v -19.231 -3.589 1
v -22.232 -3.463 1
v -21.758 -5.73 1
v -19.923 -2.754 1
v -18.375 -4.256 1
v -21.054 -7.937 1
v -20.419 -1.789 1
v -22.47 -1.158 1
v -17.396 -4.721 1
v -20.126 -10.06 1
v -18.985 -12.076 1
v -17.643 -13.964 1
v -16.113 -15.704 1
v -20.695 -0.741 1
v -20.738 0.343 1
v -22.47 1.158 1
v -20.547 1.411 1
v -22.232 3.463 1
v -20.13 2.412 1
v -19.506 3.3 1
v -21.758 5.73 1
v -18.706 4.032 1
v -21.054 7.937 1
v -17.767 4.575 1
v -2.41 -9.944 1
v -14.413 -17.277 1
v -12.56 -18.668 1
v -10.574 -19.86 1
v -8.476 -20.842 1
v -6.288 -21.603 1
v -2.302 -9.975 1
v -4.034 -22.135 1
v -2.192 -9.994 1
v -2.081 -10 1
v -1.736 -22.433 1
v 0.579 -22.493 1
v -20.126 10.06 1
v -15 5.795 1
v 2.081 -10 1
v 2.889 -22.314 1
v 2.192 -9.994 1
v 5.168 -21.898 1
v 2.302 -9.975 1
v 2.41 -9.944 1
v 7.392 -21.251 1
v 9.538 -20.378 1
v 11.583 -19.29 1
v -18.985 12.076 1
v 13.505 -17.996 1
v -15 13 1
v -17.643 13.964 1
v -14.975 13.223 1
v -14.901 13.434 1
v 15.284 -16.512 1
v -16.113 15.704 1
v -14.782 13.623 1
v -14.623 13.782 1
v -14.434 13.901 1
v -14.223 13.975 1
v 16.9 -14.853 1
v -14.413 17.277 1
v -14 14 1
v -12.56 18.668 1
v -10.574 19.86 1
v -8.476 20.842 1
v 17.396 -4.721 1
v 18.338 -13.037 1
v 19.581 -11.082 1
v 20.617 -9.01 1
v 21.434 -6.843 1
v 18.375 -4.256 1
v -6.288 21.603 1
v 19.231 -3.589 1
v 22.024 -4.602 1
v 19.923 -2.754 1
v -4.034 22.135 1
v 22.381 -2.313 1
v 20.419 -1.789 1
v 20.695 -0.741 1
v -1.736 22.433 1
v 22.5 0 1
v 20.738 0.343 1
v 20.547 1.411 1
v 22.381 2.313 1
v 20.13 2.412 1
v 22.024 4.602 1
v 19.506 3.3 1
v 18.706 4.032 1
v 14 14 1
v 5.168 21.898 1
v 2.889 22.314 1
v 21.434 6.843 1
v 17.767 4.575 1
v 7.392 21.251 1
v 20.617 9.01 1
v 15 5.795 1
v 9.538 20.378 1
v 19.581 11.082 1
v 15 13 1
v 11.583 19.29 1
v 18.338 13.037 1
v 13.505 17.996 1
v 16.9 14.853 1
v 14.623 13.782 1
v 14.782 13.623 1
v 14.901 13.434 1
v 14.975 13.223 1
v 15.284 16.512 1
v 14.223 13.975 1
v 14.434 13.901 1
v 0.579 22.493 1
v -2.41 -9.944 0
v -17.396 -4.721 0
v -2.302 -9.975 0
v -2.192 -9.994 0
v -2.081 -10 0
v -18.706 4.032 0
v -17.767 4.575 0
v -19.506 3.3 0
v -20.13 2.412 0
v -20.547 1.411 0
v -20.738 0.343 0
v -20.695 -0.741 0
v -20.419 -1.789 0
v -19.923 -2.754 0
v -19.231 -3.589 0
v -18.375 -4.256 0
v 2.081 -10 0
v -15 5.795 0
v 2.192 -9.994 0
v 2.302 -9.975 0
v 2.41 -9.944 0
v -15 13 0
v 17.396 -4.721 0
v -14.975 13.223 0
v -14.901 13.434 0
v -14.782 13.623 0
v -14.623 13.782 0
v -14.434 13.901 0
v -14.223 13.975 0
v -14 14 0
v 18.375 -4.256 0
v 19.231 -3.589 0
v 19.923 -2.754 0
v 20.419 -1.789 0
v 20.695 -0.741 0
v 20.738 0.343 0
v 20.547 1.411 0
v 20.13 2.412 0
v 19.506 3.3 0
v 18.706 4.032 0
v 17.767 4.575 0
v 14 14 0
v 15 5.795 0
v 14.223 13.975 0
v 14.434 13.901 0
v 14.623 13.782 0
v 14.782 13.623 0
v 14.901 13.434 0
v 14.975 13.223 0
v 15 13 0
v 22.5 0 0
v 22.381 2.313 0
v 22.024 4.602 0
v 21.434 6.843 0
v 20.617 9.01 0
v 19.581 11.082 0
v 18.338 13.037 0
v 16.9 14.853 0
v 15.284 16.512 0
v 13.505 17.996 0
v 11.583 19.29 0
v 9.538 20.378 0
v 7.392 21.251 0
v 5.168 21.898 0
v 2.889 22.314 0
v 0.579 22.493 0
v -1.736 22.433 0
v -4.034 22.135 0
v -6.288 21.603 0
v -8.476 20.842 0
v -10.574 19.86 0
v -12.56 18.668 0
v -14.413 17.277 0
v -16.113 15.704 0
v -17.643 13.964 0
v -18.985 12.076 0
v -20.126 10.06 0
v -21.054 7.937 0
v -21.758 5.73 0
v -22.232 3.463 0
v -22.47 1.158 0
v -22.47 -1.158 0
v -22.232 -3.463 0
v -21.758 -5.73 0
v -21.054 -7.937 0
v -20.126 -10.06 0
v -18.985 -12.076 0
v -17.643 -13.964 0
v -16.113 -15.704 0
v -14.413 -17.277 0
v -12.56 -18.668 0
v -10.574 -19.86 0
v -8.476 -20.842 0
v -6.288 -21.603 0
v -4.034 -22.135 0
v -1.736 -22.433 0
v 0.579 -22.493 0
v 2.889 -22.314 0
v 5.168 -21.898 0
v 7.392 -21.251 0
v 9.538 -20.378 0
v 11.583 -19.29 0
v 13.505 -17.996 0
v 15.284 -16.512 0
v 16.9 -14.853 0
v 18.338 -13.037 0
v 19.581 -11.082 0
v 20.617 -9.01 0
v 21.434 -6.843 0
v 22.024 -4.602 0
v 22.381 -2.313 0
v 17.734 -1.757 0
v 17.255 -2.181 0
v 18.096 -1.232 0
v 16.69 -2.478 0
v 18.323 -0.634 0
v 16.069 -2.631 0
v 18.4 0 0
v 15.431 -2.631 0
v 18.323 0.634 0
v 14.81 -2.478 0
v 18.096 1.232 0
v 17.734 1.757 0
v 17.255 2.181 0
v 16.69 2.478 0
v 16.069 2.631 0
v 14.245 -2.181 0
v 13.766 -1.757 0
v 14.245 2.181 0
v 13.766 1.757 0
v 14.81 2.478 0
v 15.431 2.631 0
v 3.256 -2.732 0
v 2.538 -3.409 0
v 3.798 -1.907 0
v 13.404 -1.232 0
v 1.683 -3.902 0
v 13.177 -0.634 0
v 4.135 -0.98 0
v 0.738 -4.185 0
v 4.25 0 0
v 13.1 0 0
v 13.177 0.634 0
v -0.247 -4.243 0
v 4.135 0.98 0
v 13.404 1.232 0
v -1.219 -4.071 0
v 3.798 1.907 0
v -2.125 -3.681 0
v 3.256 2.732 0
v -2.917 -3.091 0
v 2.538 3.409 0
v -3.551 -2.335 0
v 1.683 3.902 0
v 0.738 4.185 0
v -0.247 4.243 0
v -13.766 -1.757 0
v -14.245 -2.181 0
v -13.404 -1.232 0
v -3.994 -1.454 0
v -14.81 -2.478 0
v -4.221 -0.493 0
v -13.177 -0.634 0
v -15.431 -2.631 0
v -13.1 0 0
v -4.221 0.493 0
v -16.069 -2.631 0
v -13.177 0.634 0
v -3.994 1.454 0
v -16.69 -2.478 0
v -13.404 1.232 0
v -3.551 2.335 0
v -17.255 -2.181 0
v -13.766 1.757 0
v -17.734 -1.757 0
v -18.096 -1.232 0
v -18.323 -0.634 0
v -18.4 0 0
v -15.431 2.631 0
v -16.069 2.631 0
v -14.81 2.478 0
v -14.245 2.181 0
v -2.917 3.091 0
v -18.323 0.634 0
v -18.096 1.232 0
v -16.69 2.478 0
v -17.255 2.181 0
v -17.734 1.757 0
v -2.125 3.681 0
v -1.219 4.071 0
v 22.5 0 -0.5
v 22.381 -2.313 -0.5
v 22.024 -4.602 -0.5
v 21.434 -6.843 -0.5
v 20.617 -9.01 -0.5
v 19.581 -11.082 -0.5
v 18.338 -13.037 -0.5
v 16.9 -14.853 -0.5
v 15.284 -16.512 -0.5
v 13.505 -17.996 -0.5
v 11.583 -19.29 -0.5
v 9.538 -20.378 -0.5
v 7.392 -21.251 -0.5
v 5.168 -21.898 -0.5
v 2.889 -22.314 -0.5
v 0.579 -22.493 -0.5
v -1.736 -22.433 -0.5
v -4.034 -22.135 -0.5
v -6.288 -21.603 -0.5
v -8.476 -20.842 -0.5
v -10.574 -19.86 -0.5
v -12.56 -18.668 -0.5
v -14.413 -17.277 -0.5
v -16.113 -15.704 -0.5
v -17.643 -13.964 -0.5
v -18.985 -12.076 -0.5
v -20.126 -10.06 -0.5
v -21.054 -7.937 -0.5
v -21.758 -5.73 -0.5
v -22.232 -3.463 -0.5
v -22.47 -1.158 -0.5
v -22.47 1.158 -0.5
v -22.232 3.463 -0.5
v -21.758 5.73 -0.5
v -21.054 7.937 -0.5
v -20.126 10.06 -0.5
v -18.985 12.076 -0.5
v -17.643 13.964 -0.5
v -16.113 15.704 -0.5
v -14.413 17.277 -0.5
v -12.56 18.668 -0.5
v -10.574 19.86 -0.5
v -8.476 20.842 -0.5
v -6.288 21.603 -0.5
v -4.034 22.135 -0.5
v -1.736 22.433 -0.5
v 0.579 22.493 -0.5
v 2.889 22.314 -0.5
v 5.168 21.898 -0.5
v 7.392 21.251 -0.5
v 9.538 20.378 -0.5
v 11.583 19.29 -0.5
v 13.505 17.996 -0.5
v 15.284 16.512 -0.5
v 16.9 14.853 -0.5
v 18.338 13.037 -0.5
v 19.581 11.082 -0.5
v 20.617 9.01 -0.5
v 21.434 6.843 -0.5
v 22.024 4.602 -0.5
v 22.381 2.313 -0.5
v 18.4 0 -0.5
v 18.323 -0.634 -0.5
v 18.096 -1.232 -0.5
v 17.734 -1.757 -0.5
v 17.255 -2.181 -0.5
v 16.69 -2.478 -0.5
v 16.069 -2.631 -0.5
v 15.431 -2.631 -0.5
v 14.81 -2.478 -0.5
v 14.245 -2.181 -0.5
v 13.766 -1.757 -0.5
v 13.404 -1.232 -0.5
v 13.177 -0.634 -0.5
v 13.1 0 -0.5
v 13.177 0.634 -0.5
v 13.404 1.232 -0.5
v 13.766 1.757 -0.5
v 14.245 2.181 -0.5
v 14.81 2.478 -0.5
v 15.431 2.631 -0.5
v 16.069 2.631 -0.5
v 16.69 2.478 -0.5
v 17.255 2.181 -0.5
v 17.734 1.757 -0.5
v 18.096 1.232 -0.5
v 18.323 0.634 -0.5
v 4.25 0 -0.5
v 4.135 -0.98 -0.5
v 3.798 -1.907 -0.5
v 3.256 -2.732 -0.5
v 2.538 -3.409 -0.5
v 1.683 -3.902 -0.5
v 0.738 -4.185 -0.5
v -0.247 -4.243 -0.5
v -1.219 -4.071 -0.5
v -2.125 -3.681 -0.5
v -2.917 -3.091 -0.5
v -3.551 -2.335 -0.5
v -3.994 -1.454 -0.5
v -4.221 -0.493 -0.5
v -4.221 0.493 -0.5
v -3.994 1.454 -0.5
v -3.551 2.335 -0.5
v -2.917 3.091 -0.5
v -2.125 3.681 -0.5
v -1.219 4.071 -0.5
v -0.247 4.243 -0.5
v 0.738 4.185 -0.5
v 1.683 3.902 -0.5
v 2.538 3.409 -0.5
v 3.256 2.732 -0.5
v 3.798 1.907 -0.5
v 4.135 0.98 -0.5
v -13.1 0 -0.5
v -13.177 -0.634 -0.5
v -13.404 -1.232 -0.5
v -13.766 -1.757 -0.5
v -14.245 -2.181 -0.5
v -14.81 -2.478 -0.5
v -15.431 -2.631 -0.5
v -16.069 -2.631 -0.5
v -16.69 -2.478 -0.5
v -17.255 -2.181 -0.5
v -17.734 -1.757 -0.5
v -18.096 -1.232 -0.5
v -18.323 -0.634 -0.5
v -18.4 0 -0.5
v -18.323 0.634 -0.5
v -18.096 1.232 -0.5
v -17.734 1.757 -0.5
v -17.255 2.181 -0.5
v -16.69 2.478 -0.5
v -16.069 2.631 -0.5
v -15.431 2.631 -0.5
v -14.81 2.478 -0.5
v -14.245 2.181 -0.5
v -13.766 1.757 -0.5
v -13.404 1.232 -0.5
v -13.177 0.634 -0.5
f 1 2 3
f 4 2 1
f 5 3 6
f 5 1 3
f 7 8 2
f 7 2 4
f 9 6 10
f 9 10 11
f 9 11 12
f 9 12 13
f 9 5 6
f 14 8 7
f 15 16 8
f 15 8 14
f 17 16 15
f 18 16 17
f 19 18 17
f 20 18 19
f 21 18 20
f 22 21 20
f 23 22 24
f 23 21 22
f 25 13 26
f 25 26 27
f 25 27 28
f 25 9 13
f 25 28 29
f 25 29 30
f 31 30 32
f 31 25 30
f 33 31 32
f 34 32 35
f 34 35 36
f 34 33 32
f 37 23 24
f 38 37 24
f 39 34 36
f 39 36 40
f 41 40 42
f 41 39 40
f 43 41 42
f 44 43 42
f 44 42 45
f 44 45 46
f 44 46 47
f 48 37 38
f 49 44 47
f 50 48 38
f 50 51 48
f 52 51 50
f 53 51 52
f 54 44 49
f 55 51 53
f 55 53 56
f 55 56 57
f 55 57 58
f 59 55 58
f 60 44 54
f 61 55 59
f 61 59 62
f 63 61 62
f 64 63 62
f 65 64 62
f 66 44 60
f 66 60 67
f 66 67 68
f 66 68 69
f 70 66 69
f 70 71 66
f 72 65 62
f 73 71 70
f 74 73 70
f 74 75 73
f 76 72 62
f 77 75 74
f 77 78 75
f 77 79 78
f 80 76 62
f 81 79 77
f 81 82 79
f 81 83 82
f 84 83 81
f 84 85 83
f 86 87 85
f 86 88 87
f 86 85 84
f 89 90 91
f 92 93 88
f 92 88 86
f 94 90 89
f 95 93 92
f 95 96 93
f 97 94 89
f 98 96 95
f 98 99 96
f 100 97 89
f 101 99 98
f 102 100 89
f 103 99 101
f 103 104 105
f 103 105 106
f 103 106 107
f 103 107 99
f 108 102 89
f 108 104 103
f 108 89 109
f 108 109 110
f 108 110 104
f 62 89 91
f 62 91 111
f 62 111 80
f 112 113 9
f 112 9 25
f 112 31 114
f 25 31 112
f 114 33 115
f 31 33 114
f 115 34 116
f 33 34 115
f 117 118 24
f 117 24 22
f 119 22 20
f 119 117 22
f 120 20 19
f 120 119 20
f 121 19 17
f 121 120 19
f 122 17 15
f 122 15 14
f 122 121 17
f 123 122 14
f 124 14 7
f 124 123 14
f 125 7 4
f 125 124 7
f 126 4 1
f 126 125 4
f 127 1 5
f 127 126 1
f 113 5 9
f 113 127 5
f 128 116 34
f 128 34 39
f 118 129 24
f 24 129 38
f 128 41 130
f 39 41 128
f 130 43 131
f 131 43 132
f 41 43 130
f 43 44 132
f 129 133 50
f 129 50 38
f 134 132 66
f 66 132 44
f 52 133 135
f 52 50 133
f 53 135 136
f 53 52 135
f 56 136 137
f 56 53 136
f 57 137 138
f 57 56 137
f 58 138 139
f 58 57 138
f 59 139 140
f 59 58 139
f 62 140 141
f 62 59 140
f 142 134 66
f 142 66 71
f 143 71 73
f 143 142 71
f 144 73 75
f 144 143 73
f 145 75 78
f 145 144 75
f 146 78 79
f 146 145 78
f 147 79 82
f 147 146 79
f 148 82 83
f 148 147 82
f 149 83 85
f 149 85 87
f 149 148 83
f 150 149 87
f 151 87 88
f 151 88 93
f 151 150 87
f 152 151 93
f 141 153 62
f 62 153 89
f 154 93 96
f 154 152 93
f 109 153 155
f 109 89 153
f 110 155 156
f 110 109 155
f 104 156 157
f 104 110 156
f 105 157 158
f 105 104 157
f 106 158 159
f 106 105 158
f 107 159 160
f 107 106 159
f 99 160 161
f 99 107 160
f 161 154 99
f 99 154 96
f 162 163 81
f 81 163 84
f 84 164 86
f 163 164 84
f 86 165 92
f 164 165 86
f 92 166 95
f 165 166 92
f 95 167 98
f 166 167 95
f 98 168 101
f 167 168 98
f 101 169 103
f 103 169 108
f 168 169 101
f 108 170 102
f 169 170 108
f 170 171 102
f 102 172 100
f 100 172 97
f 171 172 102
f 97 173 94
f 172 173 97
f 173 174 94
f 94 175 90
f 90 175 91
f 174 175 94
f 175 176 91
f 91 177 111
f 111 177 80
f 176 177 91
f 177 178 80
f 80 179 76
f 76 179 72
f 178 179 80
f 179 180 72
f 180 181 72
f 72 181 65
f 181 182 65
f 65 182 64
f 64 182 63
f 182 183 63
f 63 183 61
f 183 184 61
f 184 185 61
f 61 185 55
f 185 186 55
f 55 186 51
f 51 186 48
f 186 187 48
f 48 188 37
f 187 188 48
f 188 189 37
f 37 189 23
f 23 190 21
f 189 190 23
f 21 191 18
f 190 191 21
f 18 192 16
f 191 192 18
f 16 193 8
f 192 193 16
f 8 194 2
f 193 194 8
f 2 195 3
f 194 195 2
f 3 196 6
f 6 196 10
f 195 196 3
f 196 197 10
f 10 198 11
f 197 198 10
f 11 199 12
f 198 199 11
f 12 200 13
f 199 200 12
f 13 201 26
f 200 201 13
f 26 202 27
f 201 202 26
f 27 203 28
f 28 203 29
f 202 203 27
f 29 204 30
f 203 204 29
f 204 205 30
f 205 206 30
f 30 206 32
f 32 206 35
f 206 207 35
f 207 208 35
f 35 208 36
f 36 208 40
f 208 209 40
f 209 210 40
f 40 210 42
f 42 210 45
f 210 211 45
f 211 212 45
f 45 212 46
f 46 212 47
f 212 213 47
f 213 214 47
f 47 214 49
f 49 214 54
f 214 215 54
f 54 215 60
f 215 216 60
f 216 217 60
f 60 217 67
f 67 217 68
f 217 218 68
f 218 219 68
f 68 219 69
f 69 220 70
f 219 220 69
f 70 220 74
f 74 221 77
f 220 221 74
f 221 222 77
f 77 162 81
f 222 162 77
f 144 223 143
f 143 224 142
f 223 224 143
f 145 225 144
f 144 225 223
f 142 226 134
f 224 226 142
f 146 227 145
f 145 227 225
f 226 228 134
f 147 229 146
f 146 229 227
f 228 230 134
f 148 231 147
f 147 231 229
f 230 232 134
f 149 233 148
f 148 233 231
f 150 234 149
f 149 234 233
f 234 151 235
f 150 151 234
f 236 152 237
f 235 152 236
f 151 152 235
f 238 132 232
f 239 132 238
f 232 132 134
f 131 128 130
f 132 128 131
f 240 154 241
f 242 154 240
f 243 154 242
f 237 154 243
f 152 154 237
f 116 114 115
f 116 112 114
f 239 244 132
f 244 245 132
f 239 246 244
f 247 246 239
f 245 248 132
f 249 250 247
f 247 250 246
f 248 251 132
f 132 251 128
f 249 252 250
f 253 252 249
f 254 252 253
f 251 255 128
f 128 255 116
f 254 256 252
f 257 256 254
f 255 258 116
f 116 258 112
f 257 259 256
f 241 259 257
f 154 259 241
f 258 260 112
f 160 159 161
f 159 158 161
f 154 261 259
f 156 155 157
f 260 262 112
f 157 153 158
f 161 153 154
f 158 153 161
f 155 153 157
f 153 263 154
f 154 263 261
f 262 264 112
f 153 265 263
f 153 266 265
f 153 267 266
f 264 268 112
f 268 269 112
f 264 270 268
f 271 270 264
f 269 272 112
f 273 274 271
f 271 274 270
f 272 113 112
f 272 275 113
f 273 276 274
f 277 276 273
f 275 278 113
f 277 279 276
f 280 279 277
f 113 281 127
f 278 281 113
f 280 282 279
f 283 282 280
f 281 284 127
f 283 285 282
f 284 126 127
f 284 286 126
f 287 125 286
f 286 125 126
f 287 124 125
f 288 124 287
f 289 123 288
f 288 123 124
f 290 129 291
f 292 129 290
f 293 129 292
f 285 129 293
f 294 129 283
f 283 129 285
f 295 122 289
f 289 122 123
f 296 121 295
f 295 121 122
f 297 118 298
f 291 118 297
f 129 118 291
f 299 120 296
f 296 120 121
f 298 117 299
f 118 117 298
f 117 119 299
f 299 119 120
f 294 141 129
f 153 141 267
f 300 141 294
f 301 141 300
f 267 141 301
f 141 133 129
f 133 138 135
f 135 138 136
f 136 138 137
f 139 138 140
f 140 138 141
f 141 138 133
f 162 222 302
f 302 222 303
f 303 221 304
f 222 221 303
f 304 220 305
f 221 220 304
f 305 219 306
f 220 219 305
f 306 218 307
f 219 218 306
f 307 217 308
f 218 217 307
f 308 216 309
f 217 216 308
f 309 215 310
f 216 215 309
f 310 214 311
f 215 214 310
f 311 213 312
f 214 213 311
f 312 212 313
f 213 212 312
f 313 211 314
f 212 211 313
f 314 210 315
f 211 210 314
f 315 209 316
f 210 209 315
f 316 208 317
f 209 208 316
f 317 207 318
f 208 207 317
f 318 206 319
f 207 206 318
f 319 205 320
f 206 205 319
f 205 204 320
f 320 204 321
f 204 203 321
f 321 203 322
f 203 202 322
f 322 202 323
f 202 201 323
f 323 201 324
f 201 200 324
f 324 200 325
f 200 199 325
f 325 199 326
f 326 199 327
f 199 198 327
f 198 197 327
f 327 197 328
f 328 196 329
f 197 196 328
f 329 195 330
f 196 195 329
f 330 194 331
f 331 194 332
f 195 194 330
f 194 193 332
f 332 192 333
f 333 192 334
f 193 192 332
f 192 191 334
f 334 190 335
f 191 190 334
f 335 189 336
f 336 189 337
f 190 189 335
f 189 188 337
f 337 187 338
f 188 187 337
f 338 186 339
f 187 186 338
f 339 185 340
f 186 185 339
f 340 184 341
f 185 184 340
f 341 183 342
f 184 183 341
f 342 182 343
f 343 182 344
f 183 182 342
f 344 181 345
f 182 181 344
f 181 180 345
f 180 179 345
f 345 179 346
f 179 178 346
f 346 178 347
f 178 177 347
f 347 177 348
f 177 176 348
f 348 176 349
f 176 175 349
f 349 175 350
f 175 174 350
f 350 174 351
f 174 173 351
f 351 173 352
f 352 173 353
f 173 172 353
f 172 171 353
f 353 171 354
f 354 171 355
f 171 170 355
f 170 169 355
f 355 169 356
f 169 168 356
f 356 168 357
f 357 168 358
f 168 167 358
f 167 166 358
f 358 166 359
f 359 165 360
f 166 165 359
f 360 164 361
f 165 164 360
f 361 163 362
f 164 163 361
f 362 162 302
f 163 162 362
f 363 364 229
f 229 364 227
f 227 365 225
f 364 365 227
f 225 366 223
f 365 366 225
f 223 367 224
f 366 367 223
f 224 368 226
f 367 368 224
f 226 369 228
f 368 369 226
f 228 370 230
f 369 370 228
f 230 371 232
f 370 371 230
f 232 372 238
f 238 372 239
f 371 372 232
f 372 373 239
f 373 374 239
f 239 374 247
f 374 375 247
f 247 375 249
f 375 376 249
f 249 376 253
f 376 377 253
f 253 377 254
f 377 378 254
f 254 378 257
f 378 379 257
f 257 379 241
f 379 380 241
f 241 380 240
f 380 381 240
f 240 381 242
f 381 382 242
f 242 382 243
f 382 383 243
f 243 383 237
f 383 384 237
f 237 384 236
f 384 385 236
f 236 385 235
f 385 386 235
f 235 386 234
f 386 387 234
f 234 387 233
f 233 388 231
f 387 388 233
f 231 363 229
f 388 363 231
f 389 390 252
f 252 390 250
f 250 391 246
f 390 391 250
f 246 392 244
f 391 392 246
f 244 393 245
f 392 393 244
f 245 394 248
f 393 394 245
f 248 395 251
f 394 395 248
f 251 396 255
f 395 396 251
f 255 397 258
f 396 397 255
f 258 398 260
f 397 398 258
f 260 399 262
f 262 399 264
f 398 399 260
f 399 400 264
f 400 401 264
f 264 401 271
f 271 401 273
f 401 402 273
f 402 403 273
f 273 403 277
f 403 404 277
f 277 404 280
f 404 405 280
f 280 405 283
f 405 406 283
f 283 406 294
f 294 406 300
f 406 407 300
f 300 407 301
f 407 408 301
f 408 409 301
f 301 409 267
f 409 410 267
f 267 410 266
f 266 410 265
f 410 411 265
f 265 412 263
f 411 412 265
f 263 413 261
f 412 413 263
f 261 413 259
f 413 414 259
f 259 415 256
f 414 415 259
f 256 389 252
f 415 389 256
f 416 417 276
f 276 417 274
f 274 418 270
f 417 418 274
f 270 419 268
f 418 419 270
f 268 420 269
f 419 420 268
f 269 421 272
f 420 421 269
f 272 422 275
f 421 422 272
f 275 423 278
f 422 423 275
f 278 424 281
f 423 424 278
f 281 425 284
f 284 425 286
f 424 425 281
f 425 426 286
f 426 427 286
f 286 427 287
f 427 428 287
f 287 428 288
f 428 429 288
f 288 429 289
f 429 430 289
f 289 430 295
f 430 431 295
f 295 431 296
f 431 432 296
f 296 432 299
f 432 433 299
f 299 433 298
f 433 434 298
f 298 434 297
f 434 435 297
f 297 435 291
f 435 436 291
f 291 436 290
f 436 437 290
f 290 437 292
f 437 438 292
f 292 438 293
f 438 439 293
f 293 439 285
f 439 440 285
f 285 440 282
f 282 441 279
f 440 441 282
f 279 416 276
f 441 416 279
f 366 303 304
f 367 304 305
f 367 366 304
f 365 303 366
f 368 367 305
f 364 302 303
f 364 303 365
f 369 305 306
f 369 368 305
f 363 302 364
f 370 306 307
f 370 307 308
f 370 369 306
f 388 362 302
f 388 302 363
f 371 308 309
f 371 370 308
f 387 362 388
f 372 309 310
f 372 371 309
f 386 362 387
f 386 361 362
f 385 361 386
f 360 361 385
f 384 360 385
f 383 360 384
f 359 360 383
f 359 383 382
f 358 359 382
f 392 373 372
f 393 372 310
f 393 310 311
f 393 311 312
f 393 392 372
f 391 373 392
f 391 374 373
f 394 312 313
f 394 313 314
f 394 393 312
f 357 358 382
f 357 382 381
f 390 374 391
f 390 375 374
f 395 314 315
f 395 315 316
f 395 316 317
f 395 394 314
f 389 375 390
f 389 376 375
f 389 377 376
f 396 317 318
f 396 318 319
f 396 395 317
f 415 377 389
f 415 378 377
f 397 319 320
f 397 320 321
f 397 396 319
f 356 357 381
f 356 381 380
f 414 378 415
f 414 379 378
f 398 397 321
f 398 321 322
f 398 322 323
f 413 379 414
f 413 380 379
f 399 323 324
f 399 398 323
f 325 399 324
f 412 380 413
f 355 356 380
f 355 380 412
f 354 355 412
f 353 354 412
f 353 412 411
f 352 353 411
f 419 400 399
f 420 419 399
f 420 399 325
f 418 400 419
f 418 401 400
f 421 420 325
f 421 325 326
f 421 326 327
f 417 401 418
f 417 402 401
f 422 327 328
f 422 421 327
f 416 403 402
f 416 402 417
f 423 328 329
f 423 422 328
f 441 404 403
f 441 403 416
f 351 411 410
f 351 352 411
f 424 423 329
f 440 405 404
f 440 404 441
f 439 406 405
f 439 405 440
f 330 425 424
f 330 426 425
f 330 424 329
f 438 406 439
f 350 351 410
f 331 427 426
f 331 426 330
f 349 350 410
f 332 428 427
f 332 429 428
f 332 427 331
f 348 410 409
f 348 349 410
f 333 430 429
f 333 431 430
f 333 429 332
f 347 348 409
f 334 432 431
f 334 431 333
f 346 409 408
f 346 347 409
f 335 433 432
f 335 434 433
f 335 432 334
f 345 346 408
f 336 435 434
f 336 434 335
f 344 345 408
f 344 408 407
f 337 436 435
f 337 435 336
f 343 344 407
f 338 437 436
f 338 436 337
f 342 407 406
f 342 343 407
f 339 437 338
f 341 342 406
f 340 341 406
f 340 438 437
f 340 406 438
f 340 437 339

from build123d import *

# Parameters (mm, degrees)
SKETCH_R      = 22.5
PAD_DEPTH     = 1
SKETCH001_R   = 22.5
PAD001_DEPTH  = 0.5
SKETCH002_R   = 4.25
SKETCH002_R_2 = 2.65
POCKET_DEPTH  = 1.501
FILLET_R      = 1
FILLET001_R   = 1


with BuildPart() as part:
    # Sketch → Pad (new body)
    with BuildSketch(Plane.XY):
        Circle(SKETCH_R)
        with BuildLine():
            ThreePointArc((17.39553, -4.721465), (20.746006, -0.199818), (17.767345, 4.574967))
            Line((15, 5.795235), (17.767345, 4.574967))
            Line((15, 14), (15, 5.795235))
            Line((-15, 14), (15, 14))
            Line((-15, 14), (-15, 5.795235))
            Line((-17.767345, 4.574967), (-15, 5.795235))
            ThreePointArc((-17.767345, 4.574967), (-20.746006, -0.199818), (-17.39553, -4.721465))
            Line((-17.39553, -4.721465), (-2.25, -10))
            Line((-2.25, -10), (2.25, -10))
            Line((17.39553, -4.721465), (2.25, -10))
        make_face(mode=Mode.SUBTRACT)
    extrude(amount=PAD_DEPTH)

    # Sketch001 (on Face12 of Pad) → Pad001 (join)
    with BuildSketch(Plane(origin=(0, 0, 0), x_dir=(1, 0, 0), z_dir=(0, 0, -1))):
        Circle(SKETCH001_R)
    extrude(amount=PAD001_DEPTH)

    # Sketch002 (on Face4 of Pad001) → Pocket (cut, through all)
    with BuildSketch(Plane(origin=(0, 0, -0.5), x_dir=(1, 0, 0), z_dir=(0, 0, -1))):
        Circle(SKETCH002_R)
        with Locations((-15.75, 0)):
            Circle(SKETCH002_R_2)
        with Locations((15.75, 0)):
            Circle(SKETCH002_R_2)
    extrude(amount=-POCKET_DEPTH, mode=Mode.SUBTRACT)

    # Fillet
    fillet_edges = [part.edges().sort_by_distance(p)[0] for p in [
        (15, 14, 0.5),
        (-15, 14, 0.5),
    ]]
    fillet(fillet_edges, radius=FILLET_R)

    # Fillet001
    fillet001_edges = [part.edges().sort_by_distance(p)[0] for p in [
        (-2.25, -10, 0.5),
        (2.25, -10, 0.5),
    ]]
    fillet(fillet001_edges, radius=FILLET001_R)


solid = part.part
